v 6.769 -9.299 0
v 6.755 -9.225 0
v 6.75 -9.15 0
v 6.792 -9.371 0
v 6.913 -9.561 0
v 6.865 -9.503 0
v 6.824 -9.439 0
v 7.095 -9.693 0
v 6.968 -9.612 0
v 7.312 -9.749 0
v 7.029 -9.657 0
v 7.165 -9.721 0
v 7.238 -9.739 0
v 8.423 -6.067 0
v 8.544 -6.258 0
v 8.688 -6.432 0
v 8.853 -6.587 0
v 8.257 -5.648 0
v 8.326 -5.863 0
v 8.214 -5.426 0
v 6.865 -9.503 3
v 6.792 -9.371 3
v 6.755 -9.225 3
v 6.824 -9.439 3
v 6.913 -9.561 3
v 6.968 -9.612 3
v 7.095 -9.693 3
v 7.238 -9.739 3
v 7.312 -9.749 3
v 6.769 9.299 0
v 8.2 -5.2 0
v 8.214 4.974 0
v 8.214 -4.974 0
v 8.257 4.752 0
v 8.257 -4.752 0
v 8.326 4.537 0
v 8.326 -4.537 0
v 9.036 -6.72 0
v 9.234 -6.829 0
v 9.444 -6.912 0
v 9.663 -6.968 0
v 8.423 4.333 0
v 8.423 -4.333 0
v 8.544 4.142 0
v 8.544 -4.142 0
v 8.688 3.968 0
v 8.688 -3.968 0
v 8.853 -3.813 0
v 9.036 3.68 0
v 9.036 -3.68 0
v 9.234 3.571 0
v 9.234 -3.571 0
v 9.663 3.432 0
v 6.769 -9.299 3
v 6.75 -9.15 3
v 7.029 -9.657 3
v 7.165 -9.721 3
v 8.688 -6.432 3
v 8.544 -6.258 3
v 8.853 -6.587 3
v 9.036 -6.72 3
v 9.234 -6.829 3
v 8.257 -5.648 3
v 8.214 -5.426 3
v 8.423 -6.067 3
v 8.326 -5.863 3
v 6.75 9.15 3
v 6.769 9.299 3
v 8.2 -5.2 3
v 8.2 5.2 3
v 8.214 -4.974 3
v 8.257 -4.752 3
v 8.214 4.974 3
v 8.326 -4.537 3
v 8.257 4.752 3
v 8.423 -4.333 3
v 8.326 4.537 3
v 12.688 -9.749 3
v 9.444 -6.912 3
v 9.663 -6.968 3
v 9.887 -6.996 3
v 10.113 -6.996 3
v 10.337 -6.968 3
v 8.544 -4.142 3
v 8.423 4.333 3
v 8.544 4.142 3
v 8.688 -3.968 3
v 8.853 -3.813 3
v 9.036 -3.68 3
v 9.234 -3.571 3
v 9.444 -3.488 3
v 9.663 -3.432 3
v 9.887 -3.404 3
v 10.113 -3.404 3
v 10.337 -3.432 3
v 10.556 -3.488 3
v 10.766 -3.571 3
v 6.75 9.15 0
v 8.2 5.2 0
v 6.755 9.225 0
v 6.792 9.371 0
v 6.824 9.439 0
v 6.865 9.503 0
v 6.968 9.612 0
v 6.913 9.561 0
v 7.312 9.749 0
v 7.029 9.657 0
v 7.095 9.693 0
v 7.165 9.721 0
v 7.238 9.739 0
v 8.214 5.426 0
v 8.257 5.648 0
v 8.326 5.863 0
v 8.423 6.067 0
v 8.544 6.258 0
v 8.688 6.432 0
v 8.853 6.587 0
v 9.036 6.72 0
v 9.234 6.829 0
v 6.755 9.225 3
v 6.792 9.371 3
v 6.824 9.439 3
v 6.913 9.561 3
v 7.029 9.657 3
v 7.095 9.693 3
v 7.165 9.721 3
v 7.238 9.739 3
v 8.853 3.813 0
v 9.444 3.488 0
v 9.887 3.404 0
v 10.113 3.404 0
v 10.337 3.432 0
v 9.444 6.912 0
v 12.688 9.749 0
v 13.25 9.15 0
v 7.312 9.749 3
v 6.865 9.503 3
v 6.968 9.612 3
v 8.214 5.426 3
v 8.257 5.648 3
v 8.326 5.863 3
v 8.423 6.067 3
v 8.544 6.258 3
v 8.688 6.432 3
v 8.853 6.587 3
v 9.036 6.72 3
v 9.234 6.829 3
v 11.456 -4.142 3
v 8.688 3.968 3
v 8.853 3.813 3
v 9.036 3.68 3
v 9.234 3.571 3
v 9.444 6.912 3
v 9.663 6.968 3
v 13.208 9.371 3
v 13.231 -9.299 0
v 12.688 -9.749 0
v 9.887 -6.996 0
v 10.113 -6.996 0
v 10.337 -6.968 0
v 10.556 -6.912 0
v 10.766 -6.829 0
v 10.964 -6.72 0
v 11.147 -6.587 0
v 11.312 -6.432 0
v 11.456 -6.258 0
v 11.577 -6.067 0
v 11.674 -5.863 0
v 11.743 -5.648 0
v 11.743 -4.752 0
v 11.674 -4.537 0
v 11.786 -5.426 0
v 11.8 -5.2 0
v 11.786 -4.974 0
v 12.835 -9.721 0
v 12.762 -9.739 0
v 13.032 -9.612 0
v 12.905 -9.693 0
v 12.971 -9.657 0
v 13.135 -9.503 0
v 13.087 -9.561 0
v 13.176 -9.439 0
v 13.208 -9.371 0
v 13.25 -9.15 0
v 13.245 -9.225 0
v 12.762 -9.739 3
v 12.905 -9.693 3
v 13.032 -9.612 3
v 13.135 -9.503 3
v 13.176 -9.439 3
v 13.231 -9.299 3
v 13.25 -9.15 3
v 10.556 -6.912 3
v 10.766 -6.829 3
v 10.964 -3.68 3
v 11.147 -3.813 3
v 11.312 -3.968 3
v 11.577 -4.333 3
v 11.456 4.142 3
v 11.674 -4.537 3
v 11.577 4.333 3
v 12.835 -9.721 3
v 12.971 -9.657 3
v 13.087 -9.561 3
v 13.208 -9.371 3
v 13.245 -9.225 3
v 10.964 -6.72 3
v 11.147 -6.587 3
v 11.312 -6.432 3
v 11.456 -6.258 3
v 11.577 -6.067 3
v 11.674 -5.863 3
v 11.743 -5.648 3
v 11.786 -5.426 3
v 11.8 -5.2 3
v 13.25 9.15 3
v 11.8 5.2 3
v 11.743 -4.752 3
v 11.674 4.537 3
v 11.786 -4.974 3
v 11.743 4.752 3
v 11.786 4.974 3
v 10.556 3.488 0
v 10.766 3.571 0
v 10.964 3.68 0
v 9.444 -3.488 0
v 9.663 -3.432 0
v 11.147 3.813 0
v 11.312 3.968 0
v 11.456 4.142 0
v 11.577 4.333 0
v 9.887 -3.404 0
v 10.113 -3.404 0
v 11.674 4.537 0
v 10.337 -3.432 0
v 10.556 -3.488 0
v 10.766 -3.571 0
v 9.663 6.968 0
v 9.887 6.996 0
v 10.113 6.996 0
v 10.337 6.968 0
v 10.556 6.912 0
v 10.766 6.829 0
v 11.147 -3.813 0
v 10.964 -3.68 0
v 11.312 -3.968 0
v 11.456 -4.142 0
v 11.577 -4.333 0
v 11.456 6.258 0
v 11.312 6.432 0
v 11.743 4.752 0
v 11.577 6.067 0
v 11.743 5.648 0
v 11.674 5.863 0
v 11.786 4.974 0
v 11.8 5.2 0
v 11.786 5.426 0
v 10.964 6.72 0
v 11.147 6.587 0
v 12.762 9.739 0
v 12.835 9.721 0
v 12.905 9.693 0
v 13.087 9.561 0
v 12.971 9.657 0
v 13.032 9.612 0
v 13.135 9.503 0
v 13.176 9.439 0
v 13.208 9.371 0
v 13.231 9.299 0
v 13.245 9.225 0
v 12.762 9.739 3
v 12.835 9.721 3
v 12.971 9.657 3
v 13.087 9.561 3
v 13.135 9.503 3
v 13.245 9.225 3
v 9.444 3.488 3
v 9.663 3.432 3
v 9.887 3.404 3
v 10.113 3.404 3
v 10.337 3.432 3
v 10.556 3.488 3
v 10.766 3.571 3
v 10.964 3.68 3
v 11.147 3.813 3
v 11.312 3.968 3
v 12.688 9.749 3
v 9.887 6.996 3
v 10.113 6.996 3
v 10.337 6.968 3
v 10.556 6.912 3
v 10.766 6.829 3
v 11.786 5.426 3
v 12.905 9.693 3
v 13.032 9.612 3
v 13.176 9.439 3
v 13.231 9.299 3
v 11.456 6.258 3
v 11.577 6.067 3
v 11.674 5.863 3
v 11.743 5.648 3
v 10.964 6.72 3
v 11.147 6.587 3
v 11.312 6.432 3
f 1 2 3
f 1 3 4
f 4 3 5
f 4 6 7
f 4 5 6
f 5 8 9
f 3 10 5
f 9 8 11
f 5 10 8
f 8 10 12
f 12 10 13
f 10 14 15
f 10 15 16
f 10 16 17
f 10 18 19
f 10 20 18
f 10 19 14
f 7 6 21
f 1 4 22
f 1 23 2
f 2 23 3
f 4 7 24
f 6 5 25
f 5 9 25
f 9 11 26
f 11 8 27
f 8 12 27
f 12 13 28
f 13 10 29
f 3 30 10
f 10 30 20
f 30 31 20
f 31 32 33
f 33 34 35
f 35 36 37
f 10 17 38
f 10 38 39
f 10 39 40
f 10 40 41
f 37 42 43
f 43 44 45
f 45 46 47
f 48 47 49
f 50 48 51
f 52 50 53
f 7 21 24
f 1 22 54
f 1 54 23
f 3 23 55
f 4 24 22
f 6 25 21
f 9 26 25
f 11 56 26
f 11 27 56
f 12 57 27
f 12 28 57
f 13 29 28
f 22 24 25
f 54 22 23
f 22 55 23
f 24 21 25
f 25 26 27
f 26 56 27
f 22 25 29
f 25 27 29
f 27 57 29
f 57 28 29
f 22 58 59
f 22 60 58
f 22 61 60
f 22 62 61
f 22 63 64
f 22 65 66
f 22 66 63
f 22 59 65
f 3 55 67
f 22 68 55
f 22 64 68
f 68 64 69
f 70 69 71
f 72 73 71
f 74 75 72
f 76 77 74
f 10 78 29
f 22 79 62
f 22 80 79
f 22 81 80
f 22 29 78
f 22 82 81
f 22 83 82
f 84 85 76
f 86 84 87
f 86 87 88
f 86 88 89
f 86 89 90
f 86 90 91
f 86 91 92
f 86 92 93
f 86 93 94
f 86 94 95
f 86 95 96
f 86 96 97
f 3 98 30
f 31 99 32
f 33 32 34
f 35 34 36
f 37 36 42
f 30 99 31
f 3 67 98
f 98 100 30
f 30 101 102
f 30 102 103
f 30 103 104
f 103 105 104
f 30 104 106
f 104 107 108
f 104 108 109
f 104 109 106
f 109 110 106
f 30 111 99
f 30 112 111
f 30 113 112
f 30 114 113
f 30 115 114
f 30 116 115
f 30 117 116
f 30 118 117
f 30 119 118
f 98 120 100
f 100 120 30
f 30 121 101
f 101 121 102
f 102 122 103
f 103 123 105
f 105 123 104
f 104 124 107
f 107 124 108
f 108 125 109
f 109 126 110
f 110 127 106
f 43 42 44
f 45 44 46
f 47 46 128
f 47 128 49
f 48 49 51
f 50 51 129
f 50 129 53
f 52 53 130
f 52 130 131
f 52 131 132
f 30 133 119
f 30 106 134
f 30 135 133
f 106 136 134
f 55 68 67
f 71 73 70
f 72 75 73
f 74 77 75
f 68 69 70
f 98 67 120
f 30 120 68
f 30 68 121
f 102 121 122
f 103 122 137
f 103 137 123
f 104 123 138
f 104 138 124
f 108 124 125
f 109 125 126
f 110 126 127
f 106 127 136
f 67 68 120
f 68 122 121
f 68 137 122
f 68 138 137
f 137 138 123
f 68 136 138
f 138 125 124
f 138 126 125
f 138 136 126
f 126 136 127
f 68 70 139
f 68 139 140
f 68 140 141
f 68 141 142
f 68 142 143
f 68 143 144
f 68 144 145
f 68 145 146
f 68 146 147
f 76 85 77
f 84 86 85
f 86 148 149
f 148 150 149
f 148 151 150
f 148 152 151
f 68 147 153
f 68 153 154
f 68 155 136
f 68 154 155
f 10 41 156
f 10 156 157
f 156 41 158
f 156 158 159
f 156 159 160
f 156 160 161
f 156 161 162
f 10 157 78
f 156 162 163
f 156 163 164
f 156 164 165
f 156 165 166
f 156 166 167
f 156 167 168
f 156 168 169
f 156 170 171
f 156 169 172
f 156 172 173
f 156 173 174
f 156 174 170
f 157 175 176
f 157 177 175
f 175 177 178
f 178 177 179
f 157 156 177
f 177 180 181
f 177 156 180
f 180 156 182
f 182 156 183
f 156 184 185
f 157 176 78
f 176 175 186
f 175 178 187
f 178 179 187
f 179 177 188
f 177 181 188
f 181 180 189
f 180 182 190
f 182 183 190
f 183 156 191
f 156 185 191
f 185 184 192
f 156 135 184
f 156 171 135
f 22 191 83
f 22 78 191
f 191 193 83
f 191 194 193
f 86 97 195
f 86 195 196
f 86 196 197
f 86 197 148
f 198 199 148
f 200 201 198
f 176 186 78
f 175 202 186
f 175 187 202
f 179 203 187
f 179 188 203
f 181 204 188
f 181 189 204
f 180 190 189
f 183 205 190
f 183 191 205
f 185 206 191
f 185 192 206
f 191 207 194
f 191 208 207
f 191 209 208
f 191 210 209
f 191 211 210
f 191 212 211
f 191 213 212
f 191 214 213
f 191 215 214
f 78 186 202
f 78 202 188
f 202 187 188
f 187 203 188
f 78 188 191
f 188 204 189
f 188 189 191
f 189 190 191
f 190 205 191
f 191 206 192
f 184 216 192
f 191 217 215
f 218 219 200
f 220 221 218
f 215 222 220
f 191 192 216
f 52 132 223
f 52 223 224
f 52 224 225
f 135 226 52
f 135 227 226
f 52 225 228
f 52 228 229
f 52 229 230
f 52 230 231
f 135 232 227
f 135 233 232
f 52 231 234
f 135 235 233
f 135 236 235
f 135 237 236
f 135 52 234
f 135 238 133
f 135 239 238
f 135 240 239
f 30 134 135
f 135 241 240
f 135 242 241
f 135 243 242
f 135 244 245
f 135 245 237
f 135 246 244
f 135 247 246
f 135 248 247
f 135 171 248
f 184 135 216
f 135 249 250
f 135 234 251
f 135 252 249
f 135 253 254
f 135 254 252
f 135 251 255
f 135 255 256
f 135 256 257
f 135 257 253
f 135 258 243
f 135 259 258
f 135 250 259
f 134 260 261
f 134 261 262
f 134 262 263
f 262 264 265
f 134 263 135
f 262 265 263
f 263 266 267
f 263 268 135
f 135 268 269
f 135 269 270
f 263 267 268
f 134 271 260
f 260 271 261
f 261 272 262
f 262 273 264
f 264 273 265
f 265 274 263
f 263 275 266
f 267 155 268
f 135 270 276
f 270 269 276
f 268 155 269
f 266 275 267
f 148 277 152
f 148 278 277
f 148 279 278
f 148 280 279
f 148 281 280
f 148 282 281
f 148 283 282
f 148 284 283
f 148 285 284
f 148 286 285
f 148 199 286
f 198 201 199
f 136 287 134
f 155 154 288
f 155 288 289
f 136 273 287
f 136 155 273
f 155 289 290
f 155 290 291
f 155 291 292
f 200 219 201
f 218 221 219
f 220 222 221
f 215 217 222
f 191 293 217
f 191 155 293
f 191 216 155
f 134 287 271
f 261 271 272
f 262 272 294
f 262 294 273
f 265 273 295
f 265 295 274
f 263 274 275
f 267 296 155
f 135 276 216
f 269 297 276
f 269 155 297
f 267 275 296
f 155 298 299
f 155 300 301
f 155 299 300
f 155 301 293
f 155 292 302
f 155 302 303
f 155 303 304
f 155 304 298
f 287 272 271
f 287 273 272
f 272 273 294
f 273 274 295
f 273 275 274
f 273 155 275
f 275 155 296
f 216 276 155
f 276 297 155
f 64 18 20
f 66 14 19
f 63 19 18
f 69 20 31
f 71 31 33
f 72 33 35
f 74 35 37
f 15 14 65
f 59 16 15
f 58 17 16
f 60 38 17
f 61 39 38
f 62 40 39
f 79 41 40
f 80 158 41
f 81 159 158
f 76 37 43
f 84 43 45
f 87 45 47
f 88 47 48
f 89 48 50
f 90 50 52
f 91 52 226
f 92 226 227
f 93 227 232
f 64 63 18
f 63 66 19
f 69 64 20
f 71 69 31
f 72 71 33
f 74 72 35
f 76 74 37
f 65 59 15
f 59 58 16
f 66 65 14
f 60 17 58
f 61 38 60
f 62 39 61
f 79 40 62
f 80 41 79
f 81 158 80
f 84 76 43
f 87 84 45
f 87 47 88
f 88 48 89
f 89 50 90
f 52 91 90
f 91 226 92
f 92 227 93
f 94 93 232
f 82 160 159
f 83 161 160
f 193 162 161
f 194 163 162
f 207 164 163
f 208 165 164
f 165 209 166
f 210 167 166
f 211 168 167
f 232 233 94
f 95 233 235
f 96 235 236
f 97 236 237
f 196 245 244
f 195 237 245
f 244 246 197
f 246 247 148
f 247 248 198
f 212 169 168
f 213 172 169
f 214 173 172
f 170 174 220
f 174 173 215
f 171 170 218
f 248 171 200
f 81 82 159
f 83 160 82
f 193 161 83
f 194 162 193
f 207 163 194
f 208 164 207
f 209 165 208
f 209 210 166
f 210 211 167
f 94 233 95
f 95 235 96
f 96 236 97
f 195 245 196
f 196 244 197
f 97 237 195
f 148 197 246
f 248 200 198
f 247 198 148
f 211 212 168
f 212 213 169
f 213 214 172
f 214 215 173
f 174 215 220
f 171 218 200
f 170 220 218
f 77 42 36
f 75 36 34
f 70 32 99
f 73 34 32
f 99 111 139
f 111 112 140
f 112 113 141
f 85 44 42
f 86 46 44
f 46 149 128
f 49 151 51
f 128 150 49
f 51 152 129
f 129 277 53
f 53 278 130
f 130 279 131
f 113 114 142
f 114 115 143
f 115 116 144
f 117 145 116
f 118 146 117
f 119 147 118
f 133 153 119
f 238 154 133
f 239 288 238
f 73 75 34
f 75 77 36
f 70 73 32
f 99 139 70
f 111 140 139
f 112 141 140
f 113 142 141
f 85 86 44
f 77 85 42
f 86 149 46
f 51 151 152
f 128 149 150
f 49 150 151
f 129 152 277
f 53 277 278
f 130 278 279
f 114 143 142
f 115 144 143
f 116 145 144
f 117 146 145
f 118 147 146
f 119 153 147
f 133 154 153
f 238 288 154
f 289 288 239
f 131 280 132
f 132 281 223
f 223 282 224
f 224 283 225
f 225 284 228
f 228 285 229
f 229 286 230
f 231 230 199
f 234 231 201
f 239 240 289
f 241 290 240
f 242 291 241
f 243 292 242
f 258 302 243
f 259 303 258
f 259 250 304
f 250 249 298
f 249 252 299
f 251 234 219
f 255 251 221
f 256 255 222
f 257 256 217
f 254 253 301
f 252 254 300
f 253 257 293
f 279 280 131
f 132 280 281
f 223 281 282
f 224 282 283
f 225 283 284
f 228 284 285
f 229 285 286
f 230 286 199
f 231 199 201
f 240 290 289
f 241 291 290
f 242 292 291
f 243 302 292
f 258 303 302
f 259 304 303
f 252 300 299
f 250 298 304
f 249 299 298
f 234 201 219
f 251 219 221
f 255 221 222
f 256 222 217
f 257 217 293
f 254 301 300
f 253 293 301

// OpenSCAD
$fn = 50;

difference() {
	union() {
		translate(v = [-4.5, 0, 3]) {
			rotate(a = [0, 0, 0]) {
				difference() {
					union() {
						translate(v = [14.5, 0, -3]) {
							hull() {
								translate(v = [-2.65, 9.15, 0]) {
									cylinder(h = 3, r = 0.6);
								}
								translate(v = [2.65, 9.15, 0]) {
									cylinder(h = 3, r = 0.6);
								}
								translate(v = [-2.65, -9.15, 0]) {
									cylinder(h = 3, r = 0.6);
								}
								translate(v = [2.65, -9.15, 0]) {
									cylinder(h = 3, r = 0.6);
								}
							}
						}
					}
					union() {
						translate(v = [14.5, -5.2, -4]) {
							cylinder(h = 5, r = 1.8);
						}
						translate(v = [14.5, 5.2, -4]) {
							cylinder(h = 5, r = 1.8);
						}
					}
				}
			}
		}
	}
	union();
}
